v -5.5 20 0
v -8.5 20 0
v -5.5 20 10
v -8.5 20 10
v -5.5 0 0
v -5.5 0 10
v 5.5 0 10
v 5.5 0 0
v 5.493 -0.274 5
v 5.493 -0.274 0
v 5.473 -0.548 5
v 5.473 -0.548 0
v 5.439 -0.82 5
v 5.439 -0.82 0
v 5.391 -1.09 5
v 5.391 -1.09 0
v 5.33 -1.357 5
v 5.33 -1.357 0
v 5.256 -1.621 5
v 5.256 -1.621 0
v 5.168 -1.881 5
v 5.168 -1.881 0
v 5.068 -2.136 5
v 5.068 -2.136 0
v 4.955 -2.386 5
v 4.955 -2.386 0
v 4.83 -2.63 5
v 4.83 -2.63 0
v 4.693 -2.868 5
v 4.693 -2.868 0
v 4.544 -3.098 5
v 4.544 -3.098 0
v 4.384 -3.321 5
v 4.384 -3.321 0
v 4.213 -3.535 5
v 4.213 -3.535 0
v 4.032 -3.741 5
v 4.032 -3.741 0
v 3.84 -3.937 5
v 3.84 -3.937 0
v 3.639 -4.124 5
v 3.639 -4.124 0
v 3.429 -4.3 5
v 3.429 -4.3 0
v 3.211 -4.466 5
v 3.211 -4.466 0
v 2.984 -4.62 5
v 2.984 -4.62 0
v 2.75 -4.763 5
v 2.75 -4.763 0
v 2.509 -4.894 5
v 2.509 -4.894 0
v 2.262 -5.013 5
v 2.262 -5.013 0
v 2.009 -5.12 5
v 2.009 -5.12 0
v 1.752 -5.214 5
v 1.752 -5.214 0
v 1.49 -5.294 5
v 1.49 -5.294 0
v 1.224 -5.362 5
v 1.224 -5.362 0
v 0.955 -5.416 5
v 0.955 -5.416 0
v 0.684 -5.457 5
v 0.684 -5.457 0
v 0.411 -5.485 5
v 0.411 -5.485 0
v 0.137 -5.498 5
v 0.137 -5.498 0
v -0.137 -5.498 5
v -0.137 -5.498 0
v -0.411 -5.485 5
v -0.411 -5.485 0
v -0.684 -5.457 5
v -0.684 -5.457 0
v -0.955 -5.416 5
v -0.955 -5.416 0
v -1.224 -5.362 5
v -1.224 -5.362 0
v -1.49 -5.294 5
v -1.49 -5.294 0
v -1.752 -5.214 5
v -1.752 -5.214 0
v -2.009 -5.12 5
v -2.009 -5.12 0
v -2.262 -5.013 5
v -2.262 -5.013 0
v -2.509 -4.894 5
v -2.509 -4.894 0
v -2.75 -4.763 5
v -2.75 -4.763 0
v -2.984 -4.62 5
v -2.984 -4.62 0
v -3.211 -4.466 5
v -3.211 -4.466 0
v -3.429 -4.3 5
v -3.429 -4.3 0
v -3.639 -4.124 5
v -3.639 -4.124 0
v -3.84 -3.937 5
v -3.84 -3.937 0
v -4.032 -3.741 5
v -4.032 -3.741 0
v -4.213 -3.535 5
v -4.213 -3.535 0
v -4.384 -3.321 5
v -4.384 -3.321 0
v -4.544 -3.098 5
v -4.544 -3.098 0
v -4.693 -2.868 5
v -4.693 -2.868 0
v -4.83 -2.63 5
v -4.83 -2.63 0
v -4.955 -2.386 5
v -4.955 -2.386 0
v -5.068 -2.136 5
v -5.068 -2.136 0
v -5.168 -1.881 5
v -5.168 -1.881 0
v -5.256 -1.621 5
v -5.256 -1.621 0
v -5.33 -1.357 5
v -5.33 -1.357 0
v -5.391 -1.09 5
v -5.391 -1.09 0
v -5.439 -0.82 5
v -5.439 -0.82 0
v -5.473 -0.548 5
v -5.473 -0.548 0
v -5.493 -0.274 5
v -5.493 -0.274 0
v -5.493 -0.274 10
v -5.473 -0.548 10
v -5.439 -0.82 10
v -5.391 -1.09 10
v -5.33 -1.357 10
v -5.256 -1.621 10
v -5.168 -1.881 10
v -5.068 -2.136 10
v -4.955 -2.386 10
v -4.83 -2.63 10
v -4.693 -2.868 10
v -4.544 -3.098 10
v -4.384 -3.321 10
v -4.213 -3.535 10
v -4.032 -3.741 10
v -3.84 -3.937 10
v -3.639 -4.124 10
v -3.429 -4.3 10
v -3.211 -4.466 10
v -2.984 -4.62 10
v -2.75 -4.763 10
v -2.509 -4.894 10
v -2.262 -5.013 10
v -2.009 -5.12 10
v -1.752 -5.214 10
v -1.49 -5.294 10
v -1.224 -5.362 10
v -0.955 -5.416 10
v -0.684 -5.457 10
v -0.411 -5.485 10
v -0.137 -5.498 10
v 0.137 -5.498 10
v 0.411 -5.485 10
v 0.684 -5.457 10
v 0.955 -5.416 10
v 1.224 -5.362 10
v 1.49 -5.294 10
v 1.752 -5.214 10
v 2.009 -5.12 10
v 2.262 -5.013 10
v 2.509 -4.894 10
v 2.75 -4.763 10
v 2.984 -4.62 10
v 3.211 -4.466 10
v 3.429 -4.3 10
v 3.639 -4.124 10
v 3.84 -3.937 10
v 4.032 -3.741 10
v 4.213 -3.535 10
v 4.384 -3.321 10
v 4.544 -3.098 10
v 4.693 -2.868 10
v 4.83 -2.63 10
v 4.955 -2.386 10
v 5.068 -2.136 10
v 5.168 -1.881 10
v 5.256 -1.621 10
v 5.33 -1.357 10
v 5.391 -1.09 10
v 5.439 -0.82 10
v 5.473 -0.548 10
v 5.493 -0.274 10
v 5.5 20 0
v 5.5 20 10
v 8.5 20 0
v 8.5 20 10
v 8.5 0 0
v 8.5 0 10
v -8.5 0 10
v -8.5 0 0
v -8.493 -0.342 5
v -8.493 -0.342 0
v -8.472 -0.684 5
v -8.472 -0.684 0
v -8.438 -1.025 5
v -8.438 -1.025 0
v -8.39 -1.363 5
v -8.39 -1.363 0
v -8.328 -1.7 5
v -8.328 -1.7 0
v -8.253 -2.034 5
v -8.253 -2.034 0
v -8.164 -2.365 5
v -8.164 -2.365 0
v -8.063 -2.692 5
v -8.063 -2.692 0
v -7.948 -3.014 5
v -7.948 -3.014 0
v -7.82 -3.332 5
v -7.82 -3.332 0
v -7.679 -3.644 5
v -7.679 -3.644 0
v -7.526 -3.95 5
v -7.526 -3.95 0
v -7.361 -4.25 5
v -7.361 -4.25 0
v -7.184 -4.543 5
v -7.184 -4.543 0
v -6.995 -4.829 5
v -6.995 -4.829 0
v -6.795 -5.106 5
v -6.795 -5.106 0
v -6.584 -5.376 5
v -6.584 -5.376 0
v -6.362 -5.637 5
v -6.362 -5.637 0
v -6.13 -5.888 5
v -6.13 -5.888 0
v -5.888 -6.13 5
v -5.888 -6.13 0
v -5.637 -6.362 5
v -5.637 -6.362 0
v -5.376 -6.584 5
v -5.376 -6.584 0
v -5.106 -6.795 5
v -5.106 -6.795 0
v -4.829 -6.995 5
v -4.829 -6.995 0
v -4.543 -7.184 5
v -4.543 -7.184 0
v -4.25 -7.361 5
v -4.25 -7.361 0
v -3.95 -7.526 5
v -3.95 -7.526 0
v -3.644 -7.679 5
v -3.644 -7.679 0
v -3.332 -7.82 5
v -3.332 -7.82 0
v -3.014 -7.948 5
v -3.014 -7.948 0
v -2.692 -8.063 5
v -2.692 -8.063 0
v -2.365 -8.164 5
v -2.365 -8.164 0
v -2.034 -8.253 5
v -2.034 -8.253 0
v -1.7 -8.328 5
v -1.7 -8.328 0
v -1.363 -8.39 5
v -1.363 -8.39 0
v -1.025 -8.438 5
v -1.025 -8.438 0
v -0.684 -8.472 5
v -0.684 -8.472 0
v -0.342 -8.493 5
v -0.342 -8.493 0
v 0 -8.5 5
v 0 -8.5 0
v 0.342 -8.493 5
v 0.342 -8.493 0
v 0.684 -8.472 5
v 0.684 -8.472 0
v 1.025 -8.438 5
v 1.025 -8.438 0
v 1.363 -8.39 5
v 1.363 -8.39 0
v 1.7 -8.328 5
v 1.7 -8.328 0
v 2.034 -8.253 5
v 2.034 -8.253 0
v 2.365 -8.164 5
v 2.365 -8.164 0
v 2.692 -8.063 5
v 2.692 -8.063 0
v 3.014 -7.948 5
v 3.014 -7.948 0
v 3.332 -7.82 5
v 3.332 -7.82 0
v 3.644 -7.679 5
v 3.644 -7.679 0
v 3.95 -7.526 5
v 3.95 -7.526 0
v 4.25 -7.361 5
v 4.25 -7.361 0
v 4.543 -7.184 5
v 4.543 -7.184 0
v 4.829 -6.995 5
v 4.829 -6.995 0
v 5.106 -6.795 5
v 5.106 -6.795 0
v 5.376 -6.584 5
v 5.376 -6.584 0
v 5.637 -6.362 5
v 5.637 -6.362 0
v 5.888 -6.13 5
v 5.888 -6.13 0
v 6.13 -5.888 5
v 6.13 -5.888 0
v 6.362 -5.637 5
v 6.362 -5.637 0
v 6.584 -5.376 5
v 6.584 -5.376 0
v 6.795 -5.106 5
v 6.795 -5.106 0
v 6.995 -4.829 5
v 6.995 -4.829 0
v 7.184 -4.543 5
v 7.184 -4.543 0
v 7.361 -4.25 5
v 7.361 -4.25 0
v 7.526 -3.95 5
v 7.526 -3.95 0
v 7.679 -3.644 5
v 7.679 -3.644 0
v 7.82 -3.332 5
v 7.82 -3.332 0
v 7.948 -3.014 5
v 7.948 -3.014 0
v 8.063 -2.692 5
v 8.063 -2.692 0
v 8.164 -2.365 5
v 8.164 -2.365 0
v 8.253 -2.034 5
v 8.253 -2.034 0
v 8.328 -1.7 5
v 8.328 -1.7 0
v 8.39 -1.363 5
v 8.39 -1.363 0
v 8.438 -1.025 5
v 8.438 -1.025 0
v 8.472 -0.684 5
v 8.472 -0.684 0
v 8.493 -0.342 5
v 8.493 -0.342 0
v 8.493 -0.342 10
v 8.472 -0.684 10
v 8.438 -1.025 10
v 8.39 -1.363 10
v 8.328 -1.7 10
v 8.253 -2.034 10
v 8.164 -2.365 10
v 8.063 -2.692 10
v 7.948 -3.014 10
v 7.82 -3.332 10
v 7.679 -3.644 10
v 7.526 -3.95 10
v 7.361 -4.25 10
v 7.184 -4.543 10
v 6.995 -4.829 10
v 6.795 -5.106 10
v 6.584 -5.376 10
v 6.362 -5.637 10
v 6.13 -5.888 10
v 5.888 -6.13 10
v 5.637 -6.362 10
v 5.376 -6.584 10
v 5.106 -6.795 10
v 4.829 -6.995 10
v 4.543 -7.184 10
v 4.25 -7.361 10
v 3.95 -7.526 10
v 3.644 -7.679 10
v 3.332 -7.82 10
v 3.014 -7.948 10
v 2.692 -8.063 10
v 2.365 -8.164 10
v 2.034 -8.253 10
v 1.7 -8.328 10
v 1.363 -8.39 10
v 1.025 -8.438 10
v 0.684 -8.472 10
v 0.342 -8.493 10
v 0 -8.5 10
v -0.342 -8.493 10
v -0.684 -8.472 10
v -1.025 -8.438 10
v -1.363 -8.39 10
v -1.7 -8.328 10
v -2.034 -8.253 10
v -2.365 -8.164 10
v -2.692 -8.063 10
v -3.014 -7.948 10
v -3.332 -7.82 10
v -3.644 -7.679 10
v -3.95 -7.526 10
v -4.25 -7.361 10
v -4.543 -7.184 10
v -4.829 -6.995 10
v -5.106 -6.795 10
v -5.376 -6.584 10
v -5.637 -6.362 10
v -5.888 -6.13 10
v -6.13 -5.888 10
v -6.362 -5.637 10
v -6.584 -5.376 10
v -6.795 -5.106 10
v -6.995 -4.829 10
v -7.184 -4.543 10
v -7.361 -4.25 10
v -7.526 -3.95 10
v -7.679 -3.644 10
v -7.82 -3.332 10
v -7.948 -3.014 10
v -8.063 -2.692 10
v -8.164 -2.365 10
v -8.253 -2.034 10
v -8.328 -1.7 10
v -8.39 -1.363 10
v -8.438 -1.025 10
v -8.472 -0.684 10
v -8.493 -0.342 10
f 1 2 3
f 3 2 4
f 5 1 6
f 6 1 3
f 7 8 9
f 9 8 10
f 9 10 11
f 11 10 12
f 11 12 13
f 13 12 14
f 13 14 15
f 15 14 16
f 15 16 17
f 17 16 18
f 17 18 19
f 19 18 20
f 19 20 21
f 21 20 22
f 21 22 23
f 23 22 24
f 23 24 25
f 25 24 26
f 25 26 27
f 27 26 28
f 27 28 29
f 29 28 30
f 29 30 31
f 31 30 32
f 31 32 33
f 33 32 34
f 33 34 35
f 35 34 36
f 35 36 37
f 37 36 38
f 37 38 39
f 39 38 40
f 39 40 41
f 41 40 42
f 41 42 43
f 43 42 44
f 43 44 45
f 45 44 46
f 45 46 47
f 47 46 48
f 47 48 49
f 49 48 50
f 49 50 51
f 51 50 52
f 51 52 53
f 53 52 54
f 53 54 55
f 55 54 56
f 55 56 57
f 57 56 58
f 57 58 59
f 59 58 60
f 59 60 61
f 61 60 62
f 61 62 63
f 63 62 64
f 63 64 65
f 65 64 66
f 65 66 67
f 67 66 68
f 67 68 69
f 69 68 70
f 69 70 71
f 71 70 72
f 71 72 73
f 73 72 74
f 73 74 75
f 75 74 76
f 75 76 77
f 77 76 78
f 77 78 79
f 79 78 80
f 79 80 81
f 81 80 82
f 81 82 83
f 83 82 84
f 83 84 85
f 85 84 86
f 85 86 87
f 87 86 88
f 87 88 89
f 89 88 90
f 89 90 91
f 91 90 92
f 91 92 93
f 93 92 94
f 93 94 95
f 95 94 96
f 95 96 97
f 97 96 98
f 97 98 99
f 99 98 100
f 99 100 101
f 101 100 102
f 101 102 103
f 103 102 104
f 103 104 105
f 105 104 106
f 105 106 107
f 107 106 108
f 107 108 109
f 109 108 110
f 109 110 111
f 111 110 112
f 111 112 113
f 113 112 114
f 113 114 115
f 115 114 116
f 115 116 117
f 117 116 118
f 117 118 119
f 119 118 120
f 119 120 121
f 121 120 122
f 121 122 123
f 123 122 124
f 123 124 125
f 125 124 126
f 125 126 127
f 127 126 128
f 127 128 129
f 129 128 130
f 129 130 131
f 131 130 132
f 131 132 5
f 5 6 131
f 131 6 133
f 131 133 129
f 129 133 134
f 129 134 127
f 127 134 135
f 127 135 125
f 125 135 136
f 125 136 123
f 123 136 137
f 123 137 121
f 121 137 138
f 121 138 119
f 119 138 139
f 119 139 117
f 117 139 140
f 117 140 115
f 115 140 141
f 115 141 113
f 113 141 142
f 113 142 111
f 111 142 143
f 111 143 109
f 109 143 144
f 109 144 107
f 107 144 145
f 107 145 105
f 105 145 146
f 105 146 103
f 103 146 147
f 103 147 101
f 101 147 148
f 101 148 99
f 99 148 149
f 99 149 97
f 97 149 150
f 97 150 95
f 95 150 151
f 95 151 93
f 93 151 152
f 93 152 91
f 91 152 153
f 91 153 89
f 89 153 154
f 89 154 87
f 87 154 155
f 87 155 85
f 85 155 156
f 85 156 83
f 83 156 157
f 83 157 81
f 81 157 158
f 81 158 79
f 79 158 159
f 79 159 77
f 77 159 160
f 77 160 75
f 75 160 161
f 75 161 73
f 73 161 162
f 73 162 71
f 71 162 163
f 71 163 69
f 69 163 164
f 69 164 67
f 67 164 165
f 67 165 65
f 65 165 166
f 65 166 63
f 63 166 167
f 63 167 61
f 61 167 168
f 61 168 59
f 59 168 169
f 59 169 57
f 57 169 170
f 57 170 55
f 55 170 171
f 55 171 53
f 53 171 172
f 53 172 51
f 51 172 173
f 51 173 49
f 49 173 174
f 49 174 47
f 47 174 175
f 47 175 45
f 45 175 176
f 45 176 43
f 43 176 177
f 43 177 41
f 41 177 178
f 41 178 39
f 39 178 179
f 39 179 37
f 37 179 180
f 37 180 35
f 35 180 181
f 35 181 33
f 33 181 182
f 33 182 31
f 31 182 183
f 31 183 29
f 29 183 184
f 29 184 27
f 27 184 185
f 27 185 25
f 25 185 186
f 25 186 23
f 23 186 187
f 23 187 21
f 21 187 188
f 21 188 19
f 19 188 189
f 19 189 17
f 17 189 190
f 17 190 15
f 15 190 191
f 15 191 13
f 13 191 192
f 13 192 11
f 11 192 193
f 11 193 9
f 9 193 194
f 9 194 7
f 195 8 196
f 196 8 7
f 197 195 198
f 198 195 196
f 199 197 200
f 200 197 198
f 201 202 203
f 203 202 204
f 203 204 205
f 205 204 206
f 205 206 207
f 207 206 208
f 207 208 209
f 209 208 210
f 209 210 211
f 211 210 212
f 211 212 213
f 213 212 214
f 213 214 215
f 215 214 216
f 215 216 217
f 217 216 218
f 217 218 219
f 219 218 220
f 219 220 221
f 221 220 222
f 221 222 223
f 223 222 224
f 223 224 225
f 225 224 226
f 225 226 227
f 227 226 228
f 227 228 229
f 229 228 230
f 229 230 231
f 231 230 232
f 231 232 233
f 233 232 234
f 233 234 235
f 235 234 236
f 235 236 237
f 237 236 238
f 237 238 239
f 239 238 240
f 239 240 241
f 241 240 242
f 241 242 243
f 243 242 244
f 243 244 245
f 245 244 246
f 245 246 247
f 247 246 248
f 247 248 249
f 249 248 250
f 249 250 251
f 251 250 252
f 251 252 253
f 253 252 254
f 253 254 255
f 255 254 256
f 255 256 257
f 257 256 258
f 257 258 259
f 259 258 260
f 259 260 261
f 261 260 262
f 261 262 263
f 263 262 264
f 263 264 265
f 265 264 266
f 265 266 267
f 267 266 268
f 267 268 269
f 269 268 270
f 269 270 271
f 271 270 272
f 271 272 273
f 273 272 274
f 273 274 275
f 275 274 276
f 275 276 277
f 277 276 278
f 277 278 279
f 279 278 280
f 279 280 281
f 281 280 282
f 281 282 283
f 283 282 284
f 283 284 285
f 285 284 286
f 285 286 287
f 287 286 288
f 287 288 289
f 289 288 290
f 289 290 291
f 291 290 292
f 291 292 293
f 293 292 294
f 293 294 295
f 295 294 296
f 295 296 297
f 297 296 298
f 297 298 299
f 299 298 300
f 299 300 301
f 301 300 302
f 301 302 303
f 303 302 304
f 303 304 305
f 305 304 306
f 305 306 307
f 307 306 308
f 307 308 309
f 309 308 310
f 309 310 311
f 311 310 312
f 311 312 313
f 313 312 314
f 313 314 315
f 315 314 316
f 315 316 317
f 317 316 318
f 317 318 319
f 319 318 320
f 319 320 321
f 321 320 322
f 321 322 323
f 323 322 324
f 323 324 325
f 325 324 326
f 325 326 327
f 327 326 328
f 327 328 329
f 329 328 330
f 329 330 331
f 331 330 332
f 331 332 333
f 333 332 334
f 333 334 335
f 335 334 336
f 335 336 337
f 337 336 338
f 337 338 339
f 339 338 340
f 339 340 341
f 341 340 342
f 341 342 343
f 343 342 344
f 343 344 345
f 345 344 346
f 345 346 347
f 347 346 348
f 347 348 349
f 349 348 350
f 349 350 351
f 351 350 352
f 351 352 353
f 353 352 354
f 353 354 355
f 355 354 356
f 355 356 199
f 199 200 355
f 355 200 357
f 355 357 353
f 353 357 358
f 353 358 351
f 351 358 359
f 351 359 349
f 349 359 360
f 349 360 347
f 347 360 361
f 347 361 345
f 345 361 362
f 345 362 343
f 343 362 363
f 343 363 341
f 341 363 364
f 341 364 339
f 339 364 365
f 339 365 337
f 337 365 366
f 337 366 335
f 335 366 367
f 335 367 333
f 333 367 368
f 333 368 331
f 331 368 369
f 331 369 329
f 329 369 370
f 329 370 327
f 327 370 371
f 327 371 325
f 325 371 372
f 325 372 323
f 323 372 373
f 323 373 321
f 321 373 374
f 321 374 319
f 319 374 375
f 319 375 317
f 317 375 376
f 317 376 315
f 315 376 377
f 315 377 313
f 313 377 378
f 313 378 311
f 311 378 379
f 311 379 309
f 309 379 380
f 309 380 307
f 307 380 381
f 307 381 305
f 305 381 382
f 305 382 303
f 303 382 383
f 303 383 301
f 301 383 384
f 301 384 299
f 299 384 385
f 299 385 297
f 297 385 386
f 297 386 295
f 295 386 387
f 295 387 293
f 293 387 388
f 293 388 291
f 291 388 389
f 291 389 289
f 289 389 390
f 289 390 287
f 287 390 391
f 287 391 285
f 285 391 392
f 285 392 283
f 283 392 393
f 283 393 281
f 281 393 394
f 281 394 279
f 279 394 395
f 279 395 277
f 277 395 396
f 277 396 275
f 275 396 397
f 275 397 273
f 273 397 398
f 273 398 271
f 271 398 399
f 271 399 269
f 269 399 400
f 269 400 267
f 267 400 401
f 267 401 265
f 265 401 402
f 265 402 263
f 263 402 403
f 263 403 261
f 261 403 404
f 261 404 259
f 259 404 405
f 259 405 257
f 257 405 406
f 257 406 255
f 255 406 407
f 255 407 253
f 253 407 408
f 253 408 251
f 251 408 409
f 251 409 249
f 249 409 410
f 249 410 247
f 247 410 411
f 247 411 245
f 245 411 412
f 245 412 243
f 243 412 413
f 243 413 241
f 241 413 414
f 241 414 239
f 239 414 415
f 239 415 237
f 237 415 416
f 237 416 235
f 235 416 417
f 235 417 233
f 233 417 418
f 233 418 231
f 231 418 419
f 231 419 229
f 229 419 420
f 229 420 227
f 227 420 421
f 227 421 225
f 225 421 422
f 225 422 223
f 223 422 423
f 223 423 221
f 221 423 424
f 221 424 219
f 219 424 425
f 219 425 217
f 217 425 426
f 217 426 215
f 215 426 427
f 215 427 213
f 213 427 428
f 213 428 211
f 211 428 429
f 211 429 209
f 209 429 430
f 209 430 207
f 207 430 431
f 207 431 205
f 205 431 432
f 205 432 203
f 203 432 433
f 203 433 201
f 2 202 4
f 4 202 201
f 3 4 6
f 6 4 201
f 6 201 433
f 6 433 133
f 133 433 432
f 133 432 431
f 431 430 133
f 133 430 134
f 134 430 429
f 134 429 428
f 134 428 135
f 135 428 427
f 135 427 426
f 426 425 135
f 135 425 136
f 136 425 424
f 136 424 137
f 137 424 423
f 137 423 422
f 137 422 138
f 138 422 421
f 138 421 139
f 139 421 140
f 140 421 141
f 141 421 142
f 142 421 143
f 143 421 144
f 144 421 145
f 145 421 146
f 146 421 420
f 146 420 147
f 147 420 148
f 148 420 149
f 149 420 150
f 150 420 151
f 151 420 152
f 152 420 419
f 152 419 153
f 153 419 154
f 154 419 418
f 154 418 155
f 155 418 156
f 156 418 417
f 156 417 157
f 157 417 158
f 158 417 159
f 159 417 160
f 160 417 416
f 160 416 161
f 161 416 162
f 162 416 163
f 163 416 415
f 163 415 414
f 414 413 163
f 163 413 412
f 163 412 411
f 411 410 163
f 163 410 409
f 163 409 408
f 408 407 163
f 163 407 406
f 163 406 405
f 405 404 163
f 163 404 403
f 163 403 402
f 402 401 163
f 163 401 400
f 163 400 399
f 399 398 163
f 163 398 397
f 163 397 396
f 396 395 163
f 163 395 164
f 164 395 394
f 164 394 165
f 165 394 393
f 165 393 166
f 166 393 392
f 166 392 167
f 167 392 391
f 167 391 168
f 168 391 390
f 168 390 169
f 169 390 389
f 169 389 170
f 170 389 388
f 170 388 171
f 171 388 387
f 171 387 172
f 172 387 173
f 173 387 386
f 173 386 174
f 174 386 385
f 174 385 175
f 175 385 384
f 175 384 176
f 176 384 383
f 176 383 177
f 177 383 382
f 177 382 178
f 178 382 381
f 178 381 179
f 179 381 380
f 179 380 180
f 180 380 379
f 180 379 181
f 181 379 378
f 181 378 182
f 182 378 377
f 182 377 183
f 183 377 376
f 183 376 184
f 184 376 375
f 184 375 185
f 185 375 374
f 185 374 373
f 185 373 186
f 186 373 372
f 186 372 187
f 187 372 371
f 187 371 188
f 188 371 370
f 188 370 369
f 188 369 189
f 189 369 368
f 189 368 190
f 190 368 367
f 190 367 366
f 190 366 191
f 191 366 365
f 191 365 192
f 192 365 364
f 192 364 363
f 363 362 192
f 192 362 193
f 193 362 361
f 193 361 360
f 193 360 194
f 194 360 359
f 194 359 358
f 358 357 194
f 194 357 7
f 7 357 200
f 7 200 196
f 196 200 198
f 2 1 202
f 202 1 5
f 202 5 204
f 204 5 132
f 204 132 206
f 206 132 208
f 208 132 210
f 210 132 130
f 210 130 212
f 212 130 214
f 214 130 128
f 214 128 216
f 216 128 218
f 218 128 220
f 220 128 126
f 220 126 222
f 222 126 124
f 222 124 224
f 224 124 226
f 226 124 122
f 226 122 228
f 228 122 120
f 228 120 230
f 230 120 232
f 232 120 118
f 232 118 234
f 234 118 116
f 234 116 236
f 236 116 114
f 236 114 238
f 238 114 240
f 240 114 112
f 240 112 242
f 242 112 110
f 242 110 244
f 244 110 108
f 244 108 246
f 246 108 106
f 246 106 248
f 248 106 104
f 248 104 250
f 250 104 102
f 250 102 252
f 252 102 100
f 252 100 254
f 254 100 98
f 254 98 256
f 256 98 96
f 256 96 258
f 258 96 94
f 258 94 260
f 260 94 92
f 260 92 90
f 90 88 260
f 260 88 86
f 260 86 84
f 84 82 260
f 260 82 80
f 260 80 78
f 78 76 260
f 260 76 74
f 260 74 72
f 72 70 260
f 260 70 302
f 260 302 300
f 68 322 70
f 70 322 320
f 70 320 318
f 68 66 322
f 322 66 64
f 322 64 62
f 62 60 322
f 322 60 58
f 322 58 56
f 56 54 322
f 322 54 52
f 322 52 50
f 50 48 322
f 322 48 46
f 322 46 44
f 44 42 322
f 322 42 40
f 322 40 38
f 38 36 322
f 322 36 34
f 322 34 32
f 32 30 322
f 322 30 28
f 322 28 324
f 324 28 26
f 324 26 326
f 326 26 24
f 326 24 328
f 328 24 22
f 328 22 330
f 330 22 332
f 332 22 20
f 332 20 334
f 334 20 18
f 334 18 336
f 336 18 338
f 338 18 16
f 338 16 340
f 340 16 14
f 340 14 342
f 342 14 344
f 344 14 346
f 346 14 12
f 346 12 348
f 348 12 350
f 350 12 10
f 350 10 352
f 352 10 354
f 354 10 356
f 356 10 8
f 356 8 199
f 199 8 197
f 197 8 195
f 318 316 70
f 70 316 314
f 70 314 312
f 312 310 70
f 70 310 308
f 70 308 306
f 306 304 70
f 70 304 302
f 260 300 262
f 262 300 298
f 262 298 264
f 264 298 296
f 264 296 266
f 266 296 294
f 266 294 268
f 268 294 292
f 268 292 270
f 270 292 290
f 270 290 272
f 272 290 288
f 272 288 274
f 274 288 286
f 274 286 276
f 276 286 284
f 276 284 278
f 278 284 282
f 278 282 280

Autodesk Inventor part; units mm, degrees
ref_plane "YZ Plane" through (0, 0, 0) normal (1, 0, 0) x (0, 1, 0)
ref_plane "XZ Plane" through (0, 0, 0) normal (0, 1, 0) x (-1, 0, 0)
ref_plane "XY Plane" through (0, 0, 0) normal (0, 0, 1) x (1, 0, 0)
sketch "Sketch1" plane through (0, 0, 0) normal (0, 0, 1) x (1, 0, 0)
  line L0 (-8.5, 0) -> (-5.5, 0)
  line L1 (-5.5, 0) -> (-5.5, 20)
  line L2 (-5.5, 20) -> (-8.5, 20)
  line L3 (-8.5, 20) -> (-8.5, 0)
  line L4 (8.5, 0) -> (5.5, 0)
  line L5 (5.5, 0) -> (5.5, 20)
  line L6 (5.5, 20) -> (8.5, 20)
  line L7 (8.5, 20) -> (8.5, 0)
  arc A0 (-5.5, 0) -> (5.5, 0) centre (0, 0) ccw
  arc A1 (-8.5, 0) -> (8.5, 0) centre (0, 0) ccw
  point P0 (0, 0)
  dimension "d0" = 3
  dimension "d1" = 3
  dimension "d2" = 5.5
  dimension "d3" = 5.5
  dimension "d4" = 20
  dimension "d5" = 20
extrude "Extrusion1" add sketch "Sketch1" along normal blind 10
properties part number "Plate_clip"
